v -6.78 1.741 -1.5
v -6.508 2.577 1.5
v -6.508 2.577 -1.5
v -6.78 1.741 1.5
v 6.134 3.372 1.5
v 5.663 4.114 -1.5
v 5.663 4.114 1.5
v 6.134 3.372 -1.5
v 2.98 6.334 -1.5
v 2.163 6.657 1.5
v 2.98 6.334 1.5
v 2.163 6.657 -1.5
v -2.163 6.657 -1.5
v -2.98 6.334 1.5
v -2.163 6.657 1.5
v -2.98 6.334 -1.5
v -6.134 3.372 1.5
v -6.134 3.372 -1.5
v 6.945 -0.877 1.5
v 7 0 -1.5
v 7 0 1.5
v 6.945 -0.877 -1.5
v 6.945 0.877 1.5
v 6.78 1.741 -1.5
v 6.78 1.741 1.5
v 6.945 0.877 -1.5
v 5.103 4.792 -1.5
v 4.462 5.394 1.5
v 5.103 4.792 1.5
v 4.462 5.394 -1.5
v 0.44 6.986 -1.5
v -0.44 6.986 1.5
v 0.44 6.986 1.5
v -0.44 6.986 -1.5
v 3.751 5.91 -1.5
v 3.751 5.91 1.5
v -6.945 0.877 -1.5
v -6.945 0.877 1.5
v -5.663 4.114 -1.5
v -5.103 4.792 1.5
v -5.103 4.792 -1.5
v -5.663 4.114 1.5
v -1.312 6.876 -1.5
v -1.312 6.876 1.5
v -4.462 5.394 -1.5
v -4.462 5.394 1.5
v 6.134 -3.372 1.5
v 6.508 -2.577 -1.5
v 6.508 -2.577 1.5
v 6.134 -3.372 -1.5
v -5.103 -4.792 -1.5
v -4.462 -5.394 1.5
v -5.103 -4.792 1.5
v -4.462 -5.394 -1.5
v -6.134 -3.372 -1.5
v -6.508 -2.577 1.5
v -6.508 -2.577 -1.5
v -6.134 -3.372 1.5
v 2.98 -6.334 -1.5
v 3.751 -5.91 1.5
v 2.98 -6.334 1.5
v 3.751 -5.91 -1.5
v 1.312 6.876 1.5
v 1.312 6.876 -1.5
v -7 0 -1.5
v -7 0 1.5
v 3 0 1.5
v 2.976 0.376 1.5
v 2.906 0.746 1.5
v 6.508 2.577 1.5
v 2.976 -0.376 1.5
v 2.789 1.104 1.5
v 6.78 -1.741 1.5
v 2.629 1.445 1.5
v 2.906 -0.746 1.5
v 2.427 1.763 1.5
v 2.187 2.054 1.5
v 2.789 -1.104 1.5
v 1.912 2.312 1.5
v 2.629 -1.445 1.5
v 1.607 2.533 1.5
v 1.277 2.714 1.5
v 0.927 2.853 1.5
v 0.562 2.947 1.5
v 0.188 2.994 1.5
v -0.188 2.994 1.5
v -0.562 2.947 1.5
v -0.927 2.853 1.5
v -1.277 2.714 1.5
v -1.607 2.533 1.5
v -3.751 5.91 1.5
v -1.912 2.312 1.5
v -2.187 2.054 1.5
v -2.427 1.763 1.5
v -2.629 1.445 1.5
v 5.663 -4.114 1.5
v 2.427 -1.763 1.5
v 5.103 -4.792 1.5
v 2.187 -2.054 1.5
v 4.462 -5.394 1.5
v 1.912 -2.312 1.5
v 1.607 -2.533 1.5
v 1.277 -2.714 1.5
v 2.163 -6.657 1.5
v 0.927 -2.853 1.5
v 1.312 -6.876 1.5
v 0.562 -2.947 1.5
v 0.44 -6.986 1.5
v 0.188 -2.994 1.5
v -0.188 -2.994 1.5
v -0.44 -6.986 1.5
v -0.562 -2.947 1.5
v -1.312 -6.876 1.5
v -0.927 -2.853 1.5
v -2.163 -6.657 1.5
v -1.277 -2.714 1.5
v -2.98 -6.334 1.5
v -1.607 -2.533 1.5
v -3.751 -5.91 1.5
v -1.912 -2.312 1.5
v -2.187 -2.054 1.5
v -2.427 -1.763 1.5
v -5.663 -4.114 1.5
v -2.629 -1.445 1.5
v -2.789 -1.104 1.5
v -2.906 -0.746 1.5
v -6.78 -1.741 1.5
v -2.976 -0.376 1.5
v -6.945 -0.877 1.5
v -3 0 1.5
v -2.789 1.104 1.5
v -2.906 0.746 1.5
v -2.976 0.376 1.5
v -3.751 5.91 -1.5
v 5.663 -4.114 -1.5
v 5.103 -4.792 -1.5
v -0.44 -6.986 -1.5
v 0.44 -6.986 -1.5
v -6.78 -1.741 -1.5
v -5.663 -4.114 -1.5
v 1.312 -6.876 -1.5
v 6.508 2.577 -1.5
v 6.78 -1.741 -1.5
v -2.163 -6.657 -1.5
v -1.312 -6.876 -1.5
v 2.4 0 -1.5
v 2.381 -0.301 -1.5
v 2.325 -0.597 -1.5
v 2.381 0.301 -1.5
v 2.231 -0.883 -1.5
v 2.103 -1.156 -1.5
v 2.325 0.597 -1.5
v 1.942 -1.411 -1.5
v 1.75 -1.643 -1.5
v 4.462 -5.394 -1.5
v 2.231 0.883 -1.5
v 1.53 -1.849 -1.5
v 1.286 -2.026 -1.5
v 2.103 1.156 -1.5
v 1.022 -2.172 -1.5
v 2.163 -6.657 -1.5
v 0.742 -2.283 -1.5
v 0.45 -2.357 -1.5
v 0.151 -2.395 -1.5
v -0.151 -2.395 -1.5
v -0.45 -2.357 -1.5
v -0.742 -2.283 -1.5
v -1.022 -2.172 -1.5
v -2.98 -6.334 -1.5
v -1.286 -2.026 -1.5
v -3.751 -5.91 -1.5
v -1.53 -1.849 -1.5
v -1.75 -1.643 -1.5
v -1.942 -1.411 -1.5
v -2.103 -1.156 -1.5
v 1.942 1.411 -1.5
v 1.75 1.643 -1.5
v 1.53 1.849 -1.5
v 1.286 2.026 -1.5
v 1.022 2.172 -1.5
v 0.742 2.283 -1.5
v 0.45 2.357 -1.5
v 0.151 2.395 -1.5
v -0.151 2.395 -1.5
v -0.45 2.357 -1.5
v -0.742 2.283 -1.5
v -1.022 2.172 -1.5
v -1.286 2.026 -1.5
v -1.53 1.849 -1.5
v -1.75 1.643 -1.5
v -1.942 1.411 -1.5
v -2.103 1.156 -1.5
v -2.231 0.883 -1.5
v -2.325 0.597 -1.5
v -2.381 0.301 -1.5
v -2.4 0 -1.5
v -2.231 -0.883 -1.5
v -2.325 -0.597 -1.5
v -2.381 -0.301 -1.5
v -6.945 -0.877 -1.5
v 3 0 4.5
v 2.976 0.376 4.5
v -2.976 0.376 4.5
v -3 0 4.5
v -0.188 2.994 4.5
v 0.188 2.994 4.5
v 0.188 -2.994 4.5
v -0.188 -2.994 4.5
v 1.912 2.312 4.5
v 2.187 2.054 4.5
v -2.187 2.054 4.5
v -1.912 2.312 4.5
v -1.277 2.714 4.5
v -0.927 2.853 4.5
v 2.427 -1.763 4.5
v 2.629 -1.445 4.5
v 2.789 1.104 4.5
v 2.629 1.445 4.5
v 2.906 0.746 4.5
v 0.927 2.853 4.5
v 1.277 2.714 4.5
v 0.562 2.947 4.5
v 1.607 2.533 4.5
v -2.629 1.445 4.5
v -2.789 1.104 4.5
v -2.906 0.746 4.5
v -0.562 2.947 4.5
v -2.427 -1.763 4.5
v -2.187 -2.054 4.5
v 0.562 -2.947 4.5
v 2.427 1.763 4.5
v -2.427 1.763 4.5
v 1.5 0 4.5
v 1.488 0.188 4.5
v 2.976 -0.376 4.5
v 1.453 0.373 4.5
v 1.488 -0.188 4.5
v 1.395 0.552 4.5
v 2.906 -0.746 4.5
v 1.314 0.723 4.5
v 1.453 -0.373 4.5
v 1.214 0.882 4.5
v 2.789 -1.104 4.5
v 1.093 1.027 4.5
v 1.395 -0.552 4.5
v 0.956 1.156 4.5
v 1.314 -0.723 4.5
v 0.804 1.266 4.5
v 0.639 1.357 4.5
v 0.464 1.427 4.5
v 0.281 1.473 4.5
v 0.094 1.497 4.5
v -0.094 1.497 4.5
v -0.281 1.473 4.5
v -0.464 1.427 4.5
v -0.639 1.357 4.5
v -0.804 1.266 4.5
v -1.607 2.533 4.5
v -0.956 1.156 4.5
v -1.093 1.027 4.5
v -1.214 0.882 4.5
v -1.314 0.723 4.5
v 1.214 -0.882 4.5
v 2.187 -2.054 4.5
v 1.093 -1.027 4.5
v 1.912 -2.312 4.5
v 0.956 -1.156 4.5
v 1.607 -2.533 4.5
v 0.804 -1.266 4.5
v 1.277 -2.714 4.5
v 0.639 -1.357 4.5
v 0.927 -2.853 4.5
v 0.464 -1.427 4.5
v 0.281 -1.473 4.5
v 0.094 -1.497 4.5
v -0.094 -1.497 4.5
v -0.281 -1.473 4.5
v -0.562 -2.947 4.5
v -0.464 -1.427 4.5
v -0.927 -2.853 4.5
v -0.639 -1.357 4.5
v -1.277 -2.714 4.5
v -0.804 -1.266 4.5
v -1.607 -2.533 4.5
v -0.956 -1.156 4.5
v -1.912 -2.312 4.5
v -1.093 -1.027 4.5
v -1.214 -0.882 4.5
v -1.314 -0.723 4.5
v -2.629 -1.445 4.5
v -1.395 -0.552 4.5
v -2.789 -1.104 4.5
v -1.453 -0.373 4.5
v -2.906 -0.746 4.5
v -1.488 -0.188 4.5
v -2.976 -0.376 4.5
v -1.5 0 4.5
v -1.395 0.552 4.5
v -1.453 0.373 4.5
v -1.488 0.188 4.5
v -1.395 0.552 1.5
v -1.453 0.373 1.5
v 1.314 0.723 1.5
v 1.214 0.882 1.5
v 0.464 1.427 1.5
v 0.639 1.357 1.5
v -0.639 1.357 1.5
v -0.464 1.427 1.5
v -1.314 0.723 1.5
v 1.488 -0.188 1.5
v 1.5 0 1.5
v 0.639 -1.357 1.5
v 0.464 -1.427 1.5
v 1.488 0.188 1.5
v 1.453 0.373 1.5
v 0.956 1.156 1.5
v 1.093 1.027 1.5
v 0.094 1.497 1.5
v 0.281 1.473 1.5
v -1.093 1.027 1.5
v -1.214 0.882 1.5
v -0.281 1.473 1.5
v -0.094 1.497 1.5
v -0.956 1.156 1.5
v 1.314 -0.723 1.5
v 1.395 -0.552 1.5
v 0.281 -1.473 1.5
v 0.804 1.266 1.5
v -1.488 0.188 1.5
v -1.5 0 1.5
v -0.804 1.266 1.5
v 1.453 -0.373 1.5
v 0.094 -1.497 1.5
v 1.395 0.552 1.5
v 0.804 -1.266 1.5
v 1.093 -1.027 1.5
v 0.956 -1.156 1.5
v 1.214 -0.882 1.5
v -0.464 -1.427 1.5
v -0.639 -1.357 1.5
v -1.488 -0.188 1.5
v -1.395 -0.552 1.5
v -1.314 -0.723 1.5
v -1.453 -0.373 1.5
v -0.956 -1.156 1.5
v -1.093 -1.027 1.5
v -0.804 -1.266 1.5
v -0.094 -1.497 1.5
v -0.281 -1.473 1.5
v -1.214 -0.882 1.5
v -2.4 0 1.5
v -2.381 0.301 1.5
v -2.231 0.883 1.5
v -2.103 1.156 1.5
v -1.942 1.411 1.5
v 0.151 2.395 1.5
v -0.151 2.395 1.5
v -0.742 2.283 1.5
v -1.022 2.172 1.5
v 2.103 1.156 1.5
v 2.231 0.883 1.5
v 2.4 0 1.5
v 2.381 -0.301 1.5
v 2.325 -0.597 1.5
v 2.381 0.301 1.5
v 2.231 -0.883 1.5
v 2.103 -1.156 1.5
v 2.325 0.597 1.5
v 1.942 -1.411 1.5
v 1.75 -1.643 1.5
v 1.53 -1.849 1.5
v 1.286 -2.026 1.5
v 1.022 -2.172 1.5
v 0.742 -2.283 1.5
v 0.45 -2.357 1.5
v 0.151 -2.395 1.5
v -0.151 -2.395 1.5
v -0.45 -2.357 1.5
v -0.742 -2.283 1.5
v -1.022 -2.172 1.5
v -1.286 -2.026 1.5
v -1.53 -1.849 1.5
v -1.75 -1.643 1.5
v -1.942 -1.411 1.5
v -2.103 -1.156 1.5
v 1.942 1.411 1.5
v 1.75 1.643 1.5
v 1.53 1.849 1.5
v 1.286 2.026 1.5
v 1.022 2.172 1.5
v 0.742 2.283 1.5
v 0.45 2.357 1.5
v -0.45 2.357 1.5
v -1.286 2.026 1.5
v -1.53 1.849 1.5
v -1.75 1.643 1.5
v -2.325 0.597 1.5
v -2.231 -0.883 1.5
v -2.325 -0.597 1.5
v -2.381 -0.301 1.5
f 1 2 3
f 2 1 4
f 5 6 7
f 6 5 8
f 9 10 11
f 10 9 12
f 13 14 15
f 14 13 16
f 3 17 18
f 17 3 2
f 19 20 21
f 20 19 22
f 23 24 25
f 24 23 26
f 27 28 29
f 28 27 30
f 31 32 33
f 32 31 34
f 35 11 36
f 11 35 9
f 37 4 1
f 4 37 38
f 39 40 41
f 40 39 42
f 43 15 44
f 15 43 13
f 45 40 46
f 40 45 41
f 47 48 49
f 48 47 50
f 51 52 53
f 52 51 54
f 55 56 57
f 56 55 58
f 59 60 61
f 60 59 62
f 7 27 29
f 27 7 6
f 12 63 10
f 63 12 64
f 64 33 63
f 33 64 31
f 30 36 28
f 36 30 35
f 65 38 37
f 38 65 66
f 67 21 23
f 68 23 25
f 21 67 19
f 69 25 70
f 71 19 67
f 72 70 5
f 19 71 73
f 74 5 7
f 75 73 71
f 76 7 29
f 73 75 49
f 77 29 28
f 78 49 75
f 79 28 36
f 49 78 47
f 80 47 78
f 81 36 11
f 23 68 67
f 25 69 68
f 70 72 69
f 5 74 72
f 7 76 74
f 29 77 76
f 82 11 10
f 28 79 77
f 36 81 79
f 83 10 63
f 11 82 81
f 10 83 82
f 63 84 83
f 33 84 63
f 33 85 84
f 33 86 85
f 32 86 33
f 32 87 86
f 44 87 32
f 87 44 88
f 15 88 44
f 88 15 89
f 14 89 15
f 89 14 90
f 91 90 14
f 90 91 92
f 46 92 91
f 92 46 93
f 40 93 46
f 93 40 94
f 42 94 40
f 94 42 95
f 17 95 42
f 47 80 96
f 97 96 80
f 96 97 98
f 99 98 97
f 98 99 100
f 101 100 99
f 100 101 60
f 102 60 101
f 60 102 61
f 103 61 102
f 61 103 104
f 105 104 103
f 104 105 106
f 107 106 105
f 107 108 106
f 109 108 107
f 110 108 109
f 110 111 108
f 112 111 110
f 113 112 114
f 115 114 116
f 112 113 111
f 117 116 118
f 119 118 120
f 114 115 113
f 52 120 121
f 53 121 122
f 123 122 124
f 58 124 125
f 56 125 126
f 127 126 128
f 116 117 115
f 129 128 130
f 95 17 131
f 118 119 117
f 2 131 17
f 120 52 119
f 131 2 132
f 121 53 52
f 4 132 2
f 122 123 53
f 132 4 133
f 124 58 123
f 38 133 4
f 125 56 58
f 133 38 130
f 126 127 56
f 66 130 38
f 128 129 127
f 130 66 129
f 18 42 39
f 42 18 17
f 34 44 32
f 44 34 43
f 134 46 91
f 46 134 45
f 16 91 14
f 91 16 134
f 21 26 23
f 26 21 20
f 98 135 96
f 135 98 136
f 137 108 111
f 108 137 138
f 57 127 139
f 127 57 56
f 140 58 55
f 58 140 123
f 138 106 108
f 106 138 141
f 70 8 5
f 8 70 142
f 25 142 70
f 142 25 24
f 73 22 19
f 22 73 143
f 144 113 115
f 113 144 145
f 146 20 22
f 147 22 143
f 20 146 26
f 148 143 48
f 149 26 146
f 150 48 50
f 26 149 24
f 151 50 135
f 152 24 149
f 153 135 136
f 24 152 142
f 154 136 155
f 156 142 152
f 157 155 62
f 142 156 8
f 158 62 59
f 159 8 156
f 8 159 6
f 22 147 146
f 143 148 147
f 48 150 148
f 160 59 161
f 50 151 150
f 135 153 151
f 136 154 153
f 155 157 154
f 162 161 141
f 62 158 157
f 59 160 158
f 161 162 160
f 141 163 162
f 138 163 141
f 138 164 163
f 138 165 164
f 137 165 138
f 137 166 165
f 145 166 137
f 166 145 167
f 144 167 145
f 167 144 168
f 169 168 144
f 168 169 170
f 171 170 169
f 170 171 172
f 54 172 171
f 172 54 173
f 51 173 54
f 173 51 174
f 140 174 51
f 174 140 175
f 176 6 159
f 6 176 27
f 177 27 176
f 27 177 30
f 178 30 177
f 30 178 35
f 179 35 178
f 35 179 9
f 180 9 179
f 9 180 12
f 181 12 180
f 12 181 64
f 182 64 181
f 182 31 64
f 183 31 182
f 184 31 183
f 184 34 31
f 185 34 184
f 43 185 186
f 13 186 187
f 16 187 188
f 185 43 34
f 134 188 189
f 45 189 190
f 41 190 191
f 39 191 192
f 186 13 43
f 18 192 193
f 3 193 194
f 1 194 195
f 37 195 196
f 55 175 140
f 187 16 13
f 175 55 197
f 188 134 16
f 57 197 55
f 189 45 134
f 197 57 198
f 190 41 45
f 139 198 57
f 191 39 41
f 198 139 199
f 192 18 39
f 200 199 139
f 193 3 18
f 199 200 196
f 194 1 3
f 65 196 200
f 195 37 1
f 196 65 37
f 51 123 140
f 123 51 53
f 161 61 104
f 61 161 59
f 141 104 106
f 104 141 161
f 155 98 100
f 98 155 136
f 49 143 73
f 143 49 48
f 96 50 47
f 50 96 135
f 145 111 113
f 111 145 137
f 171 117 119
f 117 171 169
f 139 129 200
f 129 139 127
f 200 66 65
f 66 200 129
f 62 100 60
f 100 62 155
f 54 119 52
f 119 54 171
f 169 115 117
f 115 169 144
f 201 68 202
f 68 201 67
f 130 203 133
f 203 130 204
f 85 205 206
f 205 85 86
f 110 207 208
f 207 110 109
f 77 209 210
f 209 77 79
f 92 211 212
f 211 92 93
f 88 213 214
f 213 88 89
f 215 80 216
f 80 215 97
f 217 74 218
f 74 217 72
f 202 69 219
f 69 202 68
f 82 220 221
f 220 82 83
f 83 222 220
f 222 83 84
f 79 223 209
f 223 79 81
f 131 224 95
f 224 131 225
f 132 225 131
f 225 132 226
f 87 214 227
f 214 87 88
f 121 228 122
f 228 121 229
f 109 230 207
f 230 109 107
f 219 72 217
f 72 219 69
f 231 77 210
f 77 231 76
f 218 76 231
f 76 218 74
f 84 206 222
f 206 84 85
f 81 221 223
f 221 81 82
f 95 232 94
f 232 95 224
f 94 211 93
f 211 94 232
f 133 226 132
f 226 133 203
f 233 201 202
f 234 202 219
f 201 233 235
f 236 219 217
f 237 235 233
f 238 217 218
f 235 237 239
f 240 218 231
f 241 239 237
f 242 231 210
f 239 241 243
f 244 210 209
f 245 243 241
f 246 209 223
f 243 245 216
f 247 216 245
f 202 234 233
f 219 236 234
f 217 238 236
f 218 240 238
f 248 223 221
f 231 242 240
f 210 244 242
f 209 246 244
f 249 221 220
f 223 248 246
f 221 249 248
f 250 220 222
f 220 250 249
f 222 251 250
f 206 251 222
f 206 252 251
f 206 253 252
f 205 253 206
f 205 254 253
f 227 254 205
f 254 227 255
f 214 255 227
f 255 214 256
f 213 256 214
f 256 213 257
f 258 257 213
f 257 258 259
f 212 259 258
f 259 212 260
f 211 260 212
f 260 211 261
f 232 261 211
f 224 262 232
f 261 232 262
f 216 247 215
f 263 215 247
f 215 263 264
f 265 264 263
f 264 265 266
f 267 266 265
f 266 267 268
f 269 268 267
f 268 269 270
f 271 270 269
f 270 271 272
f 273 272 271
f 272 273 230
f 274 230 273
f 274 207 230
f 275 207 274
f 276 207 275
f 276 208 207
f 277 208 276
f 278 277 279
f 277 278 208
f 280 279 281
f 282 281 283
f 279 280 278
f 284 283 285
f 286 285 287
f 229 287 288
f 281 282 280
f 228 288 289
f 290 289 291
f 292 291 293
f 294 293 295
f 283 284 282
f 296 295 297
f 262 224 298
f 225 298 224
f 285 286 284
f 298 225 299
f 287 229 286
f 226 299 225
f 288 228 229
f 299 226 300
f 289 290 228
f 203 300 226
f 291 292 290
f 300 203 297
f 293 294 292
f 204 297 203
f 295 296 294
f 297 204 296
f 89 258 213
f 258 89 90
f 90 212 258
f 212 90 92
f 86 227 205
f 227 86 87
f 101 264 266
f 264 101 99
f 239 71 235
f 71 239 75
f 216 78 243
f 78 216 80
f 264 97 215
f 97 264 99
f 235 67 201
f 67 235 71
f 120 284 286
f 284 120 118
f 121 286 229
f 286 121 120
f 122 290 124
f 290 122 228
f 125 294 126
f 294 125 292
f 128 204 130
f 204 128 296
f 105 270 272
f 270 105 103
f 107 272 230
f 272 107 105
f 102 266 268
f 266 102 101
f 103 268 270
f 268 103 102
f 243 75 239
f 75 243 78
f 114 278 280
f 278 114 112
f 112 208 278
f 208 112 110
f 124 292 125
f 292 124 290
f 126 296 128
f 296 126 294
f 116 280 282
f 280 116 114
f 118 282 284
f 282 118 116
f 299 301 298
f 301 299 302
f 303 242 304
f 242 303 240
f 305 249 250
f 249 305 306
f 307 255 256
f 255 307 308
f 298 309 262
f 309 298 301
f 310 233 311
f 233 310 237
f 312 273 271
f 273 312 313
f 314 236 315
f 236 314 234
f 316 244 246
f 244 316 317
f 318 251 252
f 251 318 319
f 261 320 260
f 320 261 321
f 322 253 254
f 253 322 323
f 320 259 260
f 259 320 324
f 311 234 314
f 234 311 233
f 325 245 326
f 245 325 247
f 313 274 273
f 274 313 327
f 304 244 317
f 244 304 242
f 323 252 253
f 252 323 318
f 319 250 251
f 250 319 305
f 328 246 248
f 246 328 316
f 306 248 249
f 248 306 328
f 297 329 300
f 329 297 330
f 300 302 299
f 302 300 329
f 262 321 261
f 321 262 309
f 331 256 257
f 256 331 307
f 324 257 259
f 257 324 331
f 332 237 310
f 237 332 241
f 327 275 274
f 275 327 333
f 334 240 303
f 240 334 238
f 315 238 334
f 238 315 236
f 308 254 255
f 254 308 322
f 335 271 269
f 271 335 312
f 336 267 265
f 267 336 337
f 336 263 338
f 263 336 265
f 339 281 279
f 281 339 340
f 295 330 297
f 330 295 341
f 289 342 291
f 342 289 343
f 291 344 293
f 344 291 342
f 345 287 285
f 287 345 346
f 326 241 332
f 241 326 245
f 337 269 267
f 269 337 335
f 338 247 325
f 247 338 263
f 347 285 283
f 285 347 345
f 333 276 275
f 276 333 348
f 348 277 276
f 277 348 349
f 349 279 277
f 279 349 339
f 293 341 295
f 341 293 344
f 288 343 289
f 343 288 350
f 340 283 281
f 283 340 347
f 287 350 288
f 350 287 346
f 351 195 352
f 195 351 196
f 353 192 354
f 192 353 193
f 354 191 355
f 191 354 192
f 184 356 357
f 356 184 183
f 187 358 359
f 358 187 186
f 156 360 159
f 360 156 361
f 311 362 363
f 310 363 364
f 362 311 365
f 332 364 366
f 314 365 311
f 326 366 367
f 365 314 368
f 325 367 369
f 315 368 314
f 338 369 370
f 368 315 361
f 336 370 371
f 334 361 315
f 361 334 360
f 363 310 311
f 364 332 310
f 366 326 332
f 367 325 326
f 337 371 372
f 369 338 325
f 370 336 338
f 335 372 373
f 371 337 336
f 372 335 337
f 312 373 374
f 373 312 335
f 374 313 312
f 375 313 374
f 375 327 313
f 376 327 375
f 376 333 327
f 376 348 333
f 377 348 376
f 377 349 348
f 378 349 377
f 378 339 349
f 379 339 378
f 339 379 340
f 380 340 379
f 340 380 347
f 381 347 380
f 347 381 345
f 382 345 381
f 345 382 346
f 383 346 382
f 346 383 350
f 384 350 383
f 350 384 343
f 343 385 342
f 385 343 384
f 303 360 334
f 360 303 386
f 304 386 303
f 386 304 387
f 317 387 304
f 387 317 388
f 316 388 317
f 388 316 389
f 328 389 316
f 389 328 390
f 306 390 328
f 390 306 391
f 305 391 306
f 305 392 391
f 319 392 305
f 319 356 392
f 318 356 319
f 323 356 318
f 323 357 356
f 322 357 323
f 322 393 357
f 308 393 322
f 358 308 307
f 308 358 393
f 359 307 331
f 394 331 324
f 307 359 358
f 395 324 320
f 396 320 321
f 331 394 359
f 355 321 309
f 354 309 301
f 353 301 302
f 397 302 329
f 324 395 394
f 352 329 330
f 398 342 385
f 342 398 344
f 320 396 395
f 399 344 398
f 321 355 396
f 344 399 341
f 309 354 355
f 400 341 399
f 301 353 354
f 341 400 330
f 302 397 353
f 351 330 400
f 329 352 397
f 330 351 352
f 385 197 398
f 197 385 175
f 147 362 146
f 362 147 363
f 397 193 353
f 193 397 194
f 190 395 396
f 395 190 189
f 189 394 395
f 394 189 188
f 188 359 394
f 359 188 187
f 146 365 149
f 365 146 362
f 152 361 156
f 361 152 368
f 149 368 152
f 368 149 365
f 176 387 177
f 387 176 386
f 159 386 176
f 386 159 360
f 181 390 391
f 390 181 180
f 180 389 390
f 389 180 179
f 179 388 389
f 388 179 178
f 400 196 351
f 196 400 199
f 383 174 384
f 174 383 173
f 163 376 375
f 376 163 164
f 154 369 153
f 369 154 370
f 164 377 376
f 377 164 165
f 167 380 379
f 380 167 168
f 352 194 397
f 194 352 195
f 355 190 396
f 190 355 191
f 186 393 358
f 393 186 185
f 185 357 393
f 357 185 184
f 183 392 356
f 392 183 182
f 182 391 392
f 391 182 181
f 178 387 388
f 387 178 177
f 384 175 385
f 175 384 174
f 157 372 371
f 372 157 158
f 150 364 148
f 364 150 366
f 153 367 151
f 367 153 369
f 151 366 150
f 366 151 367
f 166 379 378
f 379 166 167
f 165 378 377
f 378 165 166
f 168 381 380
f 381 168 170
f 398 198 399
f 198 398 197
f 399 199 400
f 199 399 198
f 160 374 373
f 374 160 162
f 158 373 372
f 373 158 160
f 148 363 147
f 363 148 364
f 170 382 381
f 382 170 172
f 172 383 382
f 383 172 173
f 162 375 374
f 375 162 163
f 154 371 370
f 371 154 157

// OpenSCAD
$fn = 50;


difference() {
	union() {
		translate(v = [0, 0, -1.5000000000]) {
			rotate(a = [0, 0, 0]) {
				cylinder(h = 3, r = 7.0000000000);
			}
		}
		translate(v = [0, 0, -1.5000000000]) {
			rotate(a = [0, 0, 0]) {
				cylinder(h = 6, r = 3.0000000000);
			}
		}
	}
	union() {
		translate(v = [0, 0, -125.0000000000]) {
			rotate(a = [0, 0, 0]) {
				cylinder(h = 250, r = 1.5000000000);
			}
		}
		#translate(v = [0, 0, 1.5000000000]) {
			rotate(a = [0, 180, 0]) {
				cylinder(h = 3, r1 = 2.4000000000, r2 = 2.4000000000);
			}
		}
		#translate(v = [0, 0, 4.5000000000]) {
			rotate(a = [0, 180, 0]) {
				cylinder(h = 6, r = 1.5000000000);
			}
		}
	}
}
